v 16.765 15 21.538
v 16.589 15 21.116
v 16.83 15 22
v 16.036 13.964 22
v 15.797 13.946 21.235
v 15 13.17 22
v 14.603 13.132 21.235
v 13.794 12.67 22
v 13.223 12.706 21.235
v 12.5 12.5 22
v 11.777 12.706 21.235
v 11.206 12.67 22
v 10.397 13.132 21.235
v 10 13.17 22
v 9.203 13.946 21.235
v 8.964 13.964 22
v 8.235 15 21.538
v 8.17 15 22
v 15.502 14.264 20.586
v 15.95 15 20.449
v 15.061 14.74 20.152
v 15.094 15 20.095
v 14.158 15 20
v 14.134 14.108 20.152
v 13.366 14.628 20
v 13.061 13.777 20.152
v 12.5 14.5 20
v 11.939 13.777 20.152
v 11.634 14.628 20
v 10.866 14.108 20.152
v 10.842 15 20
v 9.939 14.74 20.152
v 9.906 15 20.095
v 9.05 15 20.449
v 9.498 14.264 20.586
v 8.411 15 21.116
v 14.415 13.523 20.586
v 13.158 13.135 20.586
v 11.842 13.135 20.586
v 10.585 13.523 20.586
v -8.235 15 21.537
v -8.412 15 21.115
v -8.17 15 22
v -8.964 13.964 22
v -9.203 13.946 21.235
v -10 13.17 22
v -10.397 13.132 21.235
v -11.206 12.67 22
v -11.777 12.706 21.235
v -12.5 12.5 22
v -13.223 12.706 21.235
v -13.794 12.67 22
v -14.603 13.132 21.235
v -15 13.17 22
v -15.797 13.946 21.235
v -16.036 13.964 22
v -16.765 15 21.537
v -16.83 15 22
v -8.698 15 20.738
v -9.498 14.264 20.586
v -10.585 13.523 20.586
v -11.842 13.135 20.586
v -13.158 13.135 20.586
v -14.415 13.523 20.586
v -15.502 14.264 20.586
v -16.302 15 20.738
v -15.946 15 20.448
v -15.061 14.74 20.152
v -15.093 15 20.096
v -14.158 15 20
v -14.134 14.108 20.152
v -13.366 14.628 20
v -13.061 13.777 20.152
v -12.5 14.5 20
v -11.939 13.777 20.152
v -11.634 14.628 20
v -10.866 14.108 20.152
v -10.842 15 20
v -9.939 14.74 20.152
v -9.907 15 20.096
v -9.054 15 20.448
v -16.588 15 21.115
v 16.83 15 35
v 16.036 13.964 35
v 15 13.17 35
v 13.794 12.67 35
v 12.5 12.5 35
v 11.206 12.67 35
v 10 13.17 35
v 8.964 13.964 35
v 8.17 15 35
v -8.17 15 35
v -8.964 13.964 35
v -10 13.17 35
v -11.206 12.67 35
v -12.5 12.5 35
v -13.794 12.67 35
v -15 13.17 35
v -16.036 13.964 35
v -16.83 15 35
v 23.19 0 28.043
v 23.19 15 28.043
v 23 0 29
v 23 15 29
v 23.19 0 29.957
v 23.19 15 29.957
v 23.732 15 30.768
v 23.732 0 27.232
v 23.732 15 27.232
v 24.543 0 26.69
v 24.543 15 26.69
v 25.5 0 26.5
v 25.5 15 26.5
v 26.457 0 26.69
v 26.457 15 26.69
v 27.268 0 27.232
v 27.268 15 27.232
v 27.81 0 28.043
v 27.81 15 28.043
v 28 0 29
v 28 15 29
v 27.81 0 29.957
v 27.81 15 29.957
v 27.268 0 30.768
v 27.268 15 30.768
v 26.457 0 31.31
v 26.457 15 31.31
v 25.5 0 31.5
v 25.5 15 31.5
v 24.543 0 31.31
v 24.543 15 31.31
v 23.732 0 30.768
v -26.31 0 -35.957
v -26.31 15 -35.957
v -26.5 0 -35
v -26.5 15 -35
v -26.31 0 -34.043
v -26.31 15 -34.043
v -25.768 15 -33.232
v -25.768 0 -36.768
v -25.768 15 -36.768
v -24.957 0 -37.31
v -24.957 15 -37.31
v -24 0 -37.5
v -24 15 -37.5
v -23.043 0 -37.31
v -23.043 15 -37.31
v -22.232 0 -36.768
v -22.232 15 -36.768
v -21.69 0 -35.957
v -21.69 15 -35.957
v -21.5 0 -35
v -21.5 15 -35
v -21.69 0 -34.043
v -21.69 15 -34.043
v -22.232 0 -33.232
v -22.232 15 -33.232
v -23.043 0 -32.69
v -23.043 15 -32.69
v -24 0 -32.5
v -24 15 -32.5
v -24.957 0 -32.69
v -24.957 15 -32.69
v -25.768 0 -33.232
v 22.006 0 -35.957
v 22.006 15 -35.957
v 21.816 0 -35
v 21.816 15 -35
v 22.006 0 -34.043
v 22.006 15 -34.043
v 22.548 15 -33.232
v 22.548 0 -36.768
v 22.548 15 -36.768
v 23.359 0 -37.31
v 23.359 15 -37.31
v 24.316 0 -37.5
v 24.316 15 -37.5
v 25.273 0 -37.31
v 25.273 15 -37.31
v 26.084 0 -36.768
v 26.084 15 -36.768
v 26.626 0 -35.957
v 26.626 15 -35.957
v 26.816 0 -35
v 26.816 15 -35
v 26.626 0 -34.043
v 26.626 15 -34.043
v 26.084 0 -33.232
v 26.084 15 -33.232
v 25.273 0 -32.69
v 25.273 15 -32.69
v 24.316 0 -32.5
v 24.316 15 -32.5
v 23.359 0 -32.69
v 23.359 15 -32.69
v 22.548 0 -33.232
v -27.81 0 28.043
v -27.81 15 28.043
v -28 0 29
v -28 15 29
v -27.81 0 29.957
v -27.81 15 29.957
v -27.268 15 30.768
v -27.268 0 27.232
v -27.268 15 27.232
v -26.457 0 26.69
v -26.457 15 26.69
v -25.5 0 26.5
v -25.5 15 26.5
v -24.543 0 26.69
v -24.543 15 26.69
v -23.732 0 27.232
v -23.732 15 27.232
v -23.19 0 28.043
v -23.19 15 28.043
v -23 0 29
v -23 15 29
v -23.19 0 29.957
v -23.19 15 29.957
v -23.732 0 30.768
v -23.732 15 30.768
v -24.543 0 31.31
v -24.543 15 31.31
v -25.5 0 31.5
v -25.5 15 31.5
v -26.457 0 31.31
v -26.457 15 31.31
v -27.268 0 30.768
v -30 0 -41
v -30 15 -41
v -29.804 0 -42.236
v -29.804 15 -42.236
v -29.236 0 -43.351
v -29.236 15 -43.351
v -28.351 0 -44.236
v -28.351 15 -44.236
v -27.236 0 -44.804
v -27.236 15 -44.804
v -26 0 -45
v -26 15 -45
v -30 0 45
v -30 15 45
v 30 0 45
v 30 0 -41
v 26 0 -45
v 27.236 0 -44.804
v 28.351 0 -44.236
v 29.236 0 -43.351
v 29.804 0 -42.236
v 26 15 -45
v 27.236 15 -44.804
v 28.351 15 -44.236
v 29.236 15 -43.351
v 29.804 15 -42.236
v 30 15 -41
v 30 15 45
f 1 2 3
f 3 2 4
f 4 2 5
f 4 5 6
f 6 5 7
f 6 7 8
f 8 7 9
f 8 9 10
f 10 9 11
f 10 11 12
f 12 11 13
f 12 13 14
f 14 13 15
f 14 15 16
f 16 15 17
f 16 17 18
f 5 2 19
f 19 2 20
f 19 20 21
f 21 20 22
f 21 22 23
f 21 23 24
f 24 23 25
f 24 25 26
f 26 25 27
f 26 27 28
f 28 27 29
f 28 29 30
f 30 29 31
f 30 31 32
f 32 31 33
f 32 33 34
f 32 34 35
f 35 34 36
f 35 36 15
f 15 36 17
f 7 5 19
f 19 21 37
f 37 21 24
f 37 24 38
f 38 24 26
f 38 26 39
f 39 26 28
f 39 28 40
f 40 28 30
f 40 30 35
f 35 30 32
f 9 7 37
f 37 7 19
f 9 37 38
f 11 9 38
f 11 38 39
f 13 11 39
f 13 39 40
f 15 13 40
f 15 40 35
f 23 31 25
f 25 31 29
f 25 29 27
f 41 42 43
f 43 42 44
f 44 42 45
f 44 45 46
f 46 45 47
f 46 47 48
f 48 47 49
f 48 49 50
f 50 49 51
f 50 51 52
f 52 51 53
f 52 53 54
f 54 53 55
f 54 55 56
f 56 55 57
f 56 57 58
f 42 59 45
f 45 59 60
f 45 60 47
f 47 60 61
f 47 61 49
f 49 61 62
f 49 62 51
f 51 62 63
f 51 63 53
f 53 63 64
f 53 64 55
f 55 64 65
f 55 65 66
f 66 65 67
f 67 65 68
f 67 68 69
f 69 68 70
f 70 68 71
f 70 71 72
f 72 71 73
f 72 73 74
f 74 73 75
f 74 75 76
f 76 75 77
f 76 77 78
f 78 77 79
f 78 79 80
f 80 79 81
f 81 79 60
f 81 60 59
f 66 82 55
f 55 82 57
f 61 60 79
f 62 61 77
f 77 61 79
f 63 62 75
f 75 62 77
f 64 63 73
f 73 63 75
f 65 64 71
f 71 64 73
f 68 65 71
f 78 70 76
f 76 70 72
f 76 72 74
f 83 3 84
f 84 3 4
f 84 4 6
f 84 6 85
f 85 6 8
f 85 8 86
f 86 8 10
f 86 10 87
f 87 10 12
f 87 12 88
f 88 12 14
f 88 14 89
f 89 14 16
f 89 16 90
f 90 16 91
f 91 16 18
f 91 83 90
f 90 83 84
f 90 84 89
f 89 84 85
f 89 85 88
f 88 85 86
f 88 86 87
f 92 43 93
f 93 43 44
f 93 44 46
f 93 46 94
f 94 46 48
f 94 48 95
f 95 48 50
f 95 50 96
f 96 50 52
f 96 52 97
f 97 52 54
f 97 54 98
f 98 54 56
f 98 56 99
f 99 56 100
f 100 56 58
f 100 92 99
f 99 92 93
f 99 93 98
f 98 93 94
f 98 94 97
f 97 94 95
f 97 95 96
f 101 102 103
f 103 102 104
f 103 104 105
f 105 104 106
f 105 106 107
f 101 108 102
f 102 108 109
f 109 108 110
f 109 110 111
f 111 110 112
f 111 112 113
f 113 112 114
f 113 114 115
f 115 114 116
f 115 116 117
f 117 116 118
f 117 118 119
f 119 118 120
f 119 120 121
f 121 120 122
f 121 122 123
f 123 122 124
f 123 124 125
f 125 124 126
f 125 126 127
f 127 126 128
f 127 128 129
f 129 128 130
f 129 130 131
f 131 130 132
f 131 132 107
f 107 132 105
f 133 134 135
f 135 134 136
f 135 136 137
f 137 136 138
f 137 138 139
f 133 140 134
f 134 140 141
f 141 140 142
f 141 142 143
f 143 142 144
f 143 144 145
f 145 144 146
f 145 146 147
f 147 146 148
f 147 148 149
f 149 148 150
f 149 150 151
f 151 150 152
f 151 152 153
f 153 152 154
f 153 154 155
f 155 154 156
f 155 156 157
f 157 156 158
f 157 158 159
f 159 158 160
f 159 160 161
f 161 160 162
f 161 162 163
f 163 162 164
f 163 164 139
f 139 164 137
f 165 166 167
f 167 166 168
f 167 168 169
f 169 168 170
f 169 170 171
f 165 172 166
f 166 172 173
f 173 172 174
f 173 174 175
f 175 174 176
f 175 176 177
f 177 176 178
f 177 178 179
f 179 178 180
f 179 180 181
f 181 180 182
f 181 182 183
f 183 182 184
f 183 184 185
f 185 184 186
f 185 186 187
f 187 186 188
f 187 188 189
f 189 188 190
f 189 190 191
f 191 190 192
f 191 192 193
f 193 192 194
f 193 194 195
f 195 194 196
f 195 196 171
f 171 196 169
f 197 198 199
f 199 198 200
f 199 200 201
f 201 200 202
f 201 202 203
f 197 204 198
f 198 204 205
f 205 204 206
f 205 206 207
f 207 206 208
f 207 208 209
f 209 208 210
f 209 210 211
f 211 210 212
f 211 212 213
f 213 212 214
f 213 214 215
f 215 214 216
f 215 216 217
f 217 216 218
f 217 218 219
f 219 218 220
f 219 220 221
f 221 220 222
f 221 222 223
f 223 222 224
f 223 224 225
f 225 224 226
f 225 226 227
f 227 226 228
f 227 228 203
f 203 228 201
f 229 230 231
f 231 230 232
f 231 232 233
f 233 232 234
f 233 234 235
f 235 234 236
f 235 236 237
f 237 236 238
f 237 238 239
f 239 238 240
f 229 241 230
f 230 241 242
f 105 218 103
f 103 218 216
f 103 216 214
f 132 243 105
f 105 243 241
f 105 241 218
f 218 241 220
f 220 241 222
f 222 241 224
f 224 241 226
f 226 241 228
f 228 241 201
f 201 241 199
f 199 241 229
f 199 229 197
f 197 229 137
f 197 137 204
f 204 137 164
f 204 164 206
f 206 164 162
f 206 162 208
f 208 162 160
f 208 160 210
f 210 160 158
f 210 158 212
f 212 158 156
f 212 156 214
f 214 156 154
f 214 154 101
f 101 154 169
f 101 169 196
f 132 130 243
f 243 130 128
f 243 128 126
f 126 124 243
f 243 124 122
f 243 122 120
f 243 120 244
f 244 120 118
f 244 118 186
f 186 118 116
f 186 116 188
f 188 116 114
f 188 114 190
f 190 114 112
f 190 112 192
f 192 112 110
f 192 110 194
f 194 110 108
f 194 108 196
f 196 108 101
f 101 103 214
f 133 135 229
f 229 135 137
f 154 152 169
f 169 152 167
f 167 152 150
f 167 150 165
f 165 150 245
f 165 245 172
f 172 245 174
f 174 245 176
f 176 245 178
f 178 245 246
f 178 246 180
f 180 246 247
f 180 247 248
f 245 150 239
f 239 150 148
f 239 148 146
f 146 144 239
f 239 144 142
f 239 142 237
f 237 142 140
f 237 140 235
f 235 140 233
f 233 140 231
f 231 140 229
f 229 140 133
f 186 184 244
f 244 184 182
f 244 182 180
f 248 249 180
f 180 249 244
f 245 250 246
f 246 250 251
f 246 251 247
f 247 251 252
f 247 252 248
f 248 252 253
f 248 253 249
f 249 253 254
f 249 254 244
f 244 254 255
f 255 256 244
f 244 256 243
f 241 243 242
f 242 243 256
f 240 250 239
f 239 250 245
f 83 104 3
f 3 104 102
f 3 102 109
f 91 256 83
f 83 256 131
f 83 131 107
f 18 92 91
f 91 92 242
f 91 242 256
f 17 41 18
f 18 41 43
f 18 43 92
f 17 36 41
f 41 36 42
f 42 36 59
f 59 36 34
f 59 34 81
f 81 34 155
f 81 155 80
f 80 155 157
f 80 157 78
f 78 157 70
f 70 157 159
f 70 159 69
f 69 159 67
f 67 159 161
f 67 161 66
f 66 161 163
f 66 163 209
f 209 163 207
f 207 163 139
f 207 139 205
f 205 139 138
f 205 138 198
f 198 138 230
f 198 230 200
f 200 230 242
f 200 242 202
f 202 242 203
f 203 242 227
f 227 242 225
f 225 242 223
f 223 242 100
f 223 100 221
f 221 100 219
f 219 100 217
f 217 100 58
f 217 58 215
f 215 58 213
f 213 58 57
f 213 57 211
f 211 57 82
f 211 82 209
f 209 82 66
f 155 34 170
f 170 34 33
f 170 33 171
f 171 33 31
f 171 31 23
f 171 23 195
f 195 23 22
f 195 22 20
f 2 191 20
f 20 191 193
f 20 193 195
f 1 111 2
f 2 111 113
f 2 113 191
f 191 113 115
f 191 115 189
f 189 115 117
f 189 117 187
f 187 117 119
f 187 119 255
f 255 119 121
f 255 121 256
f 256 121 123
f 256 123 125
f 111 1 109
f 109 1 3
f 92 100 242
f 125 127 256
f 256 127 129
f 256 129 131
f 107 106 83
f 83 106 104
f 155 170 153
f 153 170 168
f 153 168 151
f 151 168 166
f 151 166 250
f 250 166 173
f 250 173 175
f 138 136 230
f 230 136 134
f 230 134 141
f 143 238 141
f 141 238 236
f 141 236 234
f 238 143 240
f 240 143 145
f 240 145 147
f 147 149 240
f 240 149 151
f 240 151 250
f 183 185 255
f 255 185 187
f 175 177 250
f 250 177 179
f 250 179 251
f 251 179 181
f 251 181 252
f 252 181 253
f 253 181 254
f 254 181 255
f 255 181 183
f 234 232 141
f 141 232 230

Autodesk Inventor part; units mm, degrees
ref_plane "YZ Plane" through (0, 0, 0) normal (1, 0, 0) x (0, 1, 0)
ref_plane "XZ Plane" through (0, 0, 0) normal (0, 1, 0) x (-1, 0, 0)
ref_plane "XY Plane" through (0, 0, 0) normal (0, 0, 1) x (1, 0, 0)
sketch "Sketch1" plane through (0, 0, 0) normal (0, 1, 0) x (-1, 0, 0)
  line L0 (30, 45) -> (-30, 45)
  line L1 (-30, 45) -> (-30, -45)
  line L2 (-30, -45) -> (30, -45)
  line L3 (30, -45) -> (30, 45)
  line L4 (30, 45) -> (-30, -45) construction
  line L5 (-30, 45) -> (30, -45) construction
  point P0 (0, 0)
  dimension "d0" = 60
  dimension "d1" = 90
extrude "Extrusion1" add sketch "Sketch1" along normal blind 15
sketch "Sketch2" plane through (0, 15, 0) normal (0, 1, 0) x (1, 0, 0)
  line L0 (-30, 45) -> (-30, -45) projected
  line L1 (-30, 45) -> (-20, 45)
  line L2 (-20, 45) -> (-20, 39)
  line L3 (-20, 39) -> (-30, 39)
  line L4 (-30, 39) -> (-30, 45)
  line L5 (30, -45) -> (30, 45) projected
  line L6 (30, 45) -> (20, 45)
  line L7 (20, 45) -> (20, 39)
  line L8 (20, 39) -> (30, 39)
  line L9 (30, 39) -> (30, 45)
  line L10 (30, -45) -> (25.5, -45)
  line L11 (25.5, -45) -> (25.5, -29)
  line L12 (25.5, -29) -> (30, -29)
  line L13 (30, -29) -> (30, -45)
  line L14 (-30, -45) -> (-25, -45)
  line L15 (-25, -45) -> (-25, -29)
  line L16 (-25, -29) -> (-30, -29)
  line L17 (-30, -29) -> (-30, -45)
  line L18 (30, 45) -> (-30, 45) projected
  line L19 (-30, 45) -> (-24, 45)
  line L20 (-24, 45) -> (-24, 35)
  line L21 (-24, 35) -> (-30, 35)
  line L22 (-30, 35) -> (-30, 45)
  line L23 (30, 45) -> (24.316, 45)
  line L24 (24.316, 45) -> (24.316, 35)
  line L25 (24.316, 35) -> (30, 35)
  line L26 (30, 35) -> (30, 45)
  line L27 (-30, -45) -> (30, -45) projected
  line L28 (-30, -45) -> (-25.5, -45)
  line L29 (-25.5, -45) -> (-25.5, -29)
  line L30 (-25.5, -29) -> (-30, -29)
  line L31 (-30, -29) -> (-30, -45)
  point P0 (0, 0)
  dimension "d4" = 10
  dimension "d5" = 6
  dimension "d6" = 10
  dimension "d7" = 4.5
  dimension "d8" = 16
  dimension "d17" = 6
  dimension "d18" = 10
  dimension "d19" = 5.684
  dimension "d20" = 10
  dimension "d21" = 4.5
fillet "Fillet1" radius 4 2 edges at (30, 7.5, -45) (-30, 7.5, -45)
hole "Hole2" at (-24, 15, -35) at (24.316, 15, -35) at (25.5, 15, 29) at (-25.5, 15, 29) direction (0, -1, 0) diameter 5 end through all
ref_plane "Work Plane2" through (-30, 0, 35) normal (0, 0, 1) x (1, 0, 0)
sketch "Sketch3" plane through (-30, 0, 35) normal (0, 0, 1) x (1, 0, 0)
  line L0 (0, 15) -> (17.5, 15)
  line L1 (2, 15) -> (7, 15) projected
  line L2 (17.5, 15) -> (17.5, 17.5)
  line L3 (17.5, 17.5) -> (42.5, 17.5)
  circle A0 centre (42.5, 17.5) radius 5
  circle A1 centre (17.5, 17.5) radius 5
  point P0 (30, 0)
  dimension "d31" = 17.5
  dimension "d32" = 2.5
  dimension "d33" = 25
  dimension "d34" = 10
  dimension "d35" = 10
extrude "Extrusion2" cut sketch "Sketch3" against normal blind 15
fillet "Fillet2" radius 2 2 edges at (-12.5, 12.5, 20) (12.5, 12.5, 20)
properties part number "Adaptador_soporte_motor-rueda_error_asumido"
